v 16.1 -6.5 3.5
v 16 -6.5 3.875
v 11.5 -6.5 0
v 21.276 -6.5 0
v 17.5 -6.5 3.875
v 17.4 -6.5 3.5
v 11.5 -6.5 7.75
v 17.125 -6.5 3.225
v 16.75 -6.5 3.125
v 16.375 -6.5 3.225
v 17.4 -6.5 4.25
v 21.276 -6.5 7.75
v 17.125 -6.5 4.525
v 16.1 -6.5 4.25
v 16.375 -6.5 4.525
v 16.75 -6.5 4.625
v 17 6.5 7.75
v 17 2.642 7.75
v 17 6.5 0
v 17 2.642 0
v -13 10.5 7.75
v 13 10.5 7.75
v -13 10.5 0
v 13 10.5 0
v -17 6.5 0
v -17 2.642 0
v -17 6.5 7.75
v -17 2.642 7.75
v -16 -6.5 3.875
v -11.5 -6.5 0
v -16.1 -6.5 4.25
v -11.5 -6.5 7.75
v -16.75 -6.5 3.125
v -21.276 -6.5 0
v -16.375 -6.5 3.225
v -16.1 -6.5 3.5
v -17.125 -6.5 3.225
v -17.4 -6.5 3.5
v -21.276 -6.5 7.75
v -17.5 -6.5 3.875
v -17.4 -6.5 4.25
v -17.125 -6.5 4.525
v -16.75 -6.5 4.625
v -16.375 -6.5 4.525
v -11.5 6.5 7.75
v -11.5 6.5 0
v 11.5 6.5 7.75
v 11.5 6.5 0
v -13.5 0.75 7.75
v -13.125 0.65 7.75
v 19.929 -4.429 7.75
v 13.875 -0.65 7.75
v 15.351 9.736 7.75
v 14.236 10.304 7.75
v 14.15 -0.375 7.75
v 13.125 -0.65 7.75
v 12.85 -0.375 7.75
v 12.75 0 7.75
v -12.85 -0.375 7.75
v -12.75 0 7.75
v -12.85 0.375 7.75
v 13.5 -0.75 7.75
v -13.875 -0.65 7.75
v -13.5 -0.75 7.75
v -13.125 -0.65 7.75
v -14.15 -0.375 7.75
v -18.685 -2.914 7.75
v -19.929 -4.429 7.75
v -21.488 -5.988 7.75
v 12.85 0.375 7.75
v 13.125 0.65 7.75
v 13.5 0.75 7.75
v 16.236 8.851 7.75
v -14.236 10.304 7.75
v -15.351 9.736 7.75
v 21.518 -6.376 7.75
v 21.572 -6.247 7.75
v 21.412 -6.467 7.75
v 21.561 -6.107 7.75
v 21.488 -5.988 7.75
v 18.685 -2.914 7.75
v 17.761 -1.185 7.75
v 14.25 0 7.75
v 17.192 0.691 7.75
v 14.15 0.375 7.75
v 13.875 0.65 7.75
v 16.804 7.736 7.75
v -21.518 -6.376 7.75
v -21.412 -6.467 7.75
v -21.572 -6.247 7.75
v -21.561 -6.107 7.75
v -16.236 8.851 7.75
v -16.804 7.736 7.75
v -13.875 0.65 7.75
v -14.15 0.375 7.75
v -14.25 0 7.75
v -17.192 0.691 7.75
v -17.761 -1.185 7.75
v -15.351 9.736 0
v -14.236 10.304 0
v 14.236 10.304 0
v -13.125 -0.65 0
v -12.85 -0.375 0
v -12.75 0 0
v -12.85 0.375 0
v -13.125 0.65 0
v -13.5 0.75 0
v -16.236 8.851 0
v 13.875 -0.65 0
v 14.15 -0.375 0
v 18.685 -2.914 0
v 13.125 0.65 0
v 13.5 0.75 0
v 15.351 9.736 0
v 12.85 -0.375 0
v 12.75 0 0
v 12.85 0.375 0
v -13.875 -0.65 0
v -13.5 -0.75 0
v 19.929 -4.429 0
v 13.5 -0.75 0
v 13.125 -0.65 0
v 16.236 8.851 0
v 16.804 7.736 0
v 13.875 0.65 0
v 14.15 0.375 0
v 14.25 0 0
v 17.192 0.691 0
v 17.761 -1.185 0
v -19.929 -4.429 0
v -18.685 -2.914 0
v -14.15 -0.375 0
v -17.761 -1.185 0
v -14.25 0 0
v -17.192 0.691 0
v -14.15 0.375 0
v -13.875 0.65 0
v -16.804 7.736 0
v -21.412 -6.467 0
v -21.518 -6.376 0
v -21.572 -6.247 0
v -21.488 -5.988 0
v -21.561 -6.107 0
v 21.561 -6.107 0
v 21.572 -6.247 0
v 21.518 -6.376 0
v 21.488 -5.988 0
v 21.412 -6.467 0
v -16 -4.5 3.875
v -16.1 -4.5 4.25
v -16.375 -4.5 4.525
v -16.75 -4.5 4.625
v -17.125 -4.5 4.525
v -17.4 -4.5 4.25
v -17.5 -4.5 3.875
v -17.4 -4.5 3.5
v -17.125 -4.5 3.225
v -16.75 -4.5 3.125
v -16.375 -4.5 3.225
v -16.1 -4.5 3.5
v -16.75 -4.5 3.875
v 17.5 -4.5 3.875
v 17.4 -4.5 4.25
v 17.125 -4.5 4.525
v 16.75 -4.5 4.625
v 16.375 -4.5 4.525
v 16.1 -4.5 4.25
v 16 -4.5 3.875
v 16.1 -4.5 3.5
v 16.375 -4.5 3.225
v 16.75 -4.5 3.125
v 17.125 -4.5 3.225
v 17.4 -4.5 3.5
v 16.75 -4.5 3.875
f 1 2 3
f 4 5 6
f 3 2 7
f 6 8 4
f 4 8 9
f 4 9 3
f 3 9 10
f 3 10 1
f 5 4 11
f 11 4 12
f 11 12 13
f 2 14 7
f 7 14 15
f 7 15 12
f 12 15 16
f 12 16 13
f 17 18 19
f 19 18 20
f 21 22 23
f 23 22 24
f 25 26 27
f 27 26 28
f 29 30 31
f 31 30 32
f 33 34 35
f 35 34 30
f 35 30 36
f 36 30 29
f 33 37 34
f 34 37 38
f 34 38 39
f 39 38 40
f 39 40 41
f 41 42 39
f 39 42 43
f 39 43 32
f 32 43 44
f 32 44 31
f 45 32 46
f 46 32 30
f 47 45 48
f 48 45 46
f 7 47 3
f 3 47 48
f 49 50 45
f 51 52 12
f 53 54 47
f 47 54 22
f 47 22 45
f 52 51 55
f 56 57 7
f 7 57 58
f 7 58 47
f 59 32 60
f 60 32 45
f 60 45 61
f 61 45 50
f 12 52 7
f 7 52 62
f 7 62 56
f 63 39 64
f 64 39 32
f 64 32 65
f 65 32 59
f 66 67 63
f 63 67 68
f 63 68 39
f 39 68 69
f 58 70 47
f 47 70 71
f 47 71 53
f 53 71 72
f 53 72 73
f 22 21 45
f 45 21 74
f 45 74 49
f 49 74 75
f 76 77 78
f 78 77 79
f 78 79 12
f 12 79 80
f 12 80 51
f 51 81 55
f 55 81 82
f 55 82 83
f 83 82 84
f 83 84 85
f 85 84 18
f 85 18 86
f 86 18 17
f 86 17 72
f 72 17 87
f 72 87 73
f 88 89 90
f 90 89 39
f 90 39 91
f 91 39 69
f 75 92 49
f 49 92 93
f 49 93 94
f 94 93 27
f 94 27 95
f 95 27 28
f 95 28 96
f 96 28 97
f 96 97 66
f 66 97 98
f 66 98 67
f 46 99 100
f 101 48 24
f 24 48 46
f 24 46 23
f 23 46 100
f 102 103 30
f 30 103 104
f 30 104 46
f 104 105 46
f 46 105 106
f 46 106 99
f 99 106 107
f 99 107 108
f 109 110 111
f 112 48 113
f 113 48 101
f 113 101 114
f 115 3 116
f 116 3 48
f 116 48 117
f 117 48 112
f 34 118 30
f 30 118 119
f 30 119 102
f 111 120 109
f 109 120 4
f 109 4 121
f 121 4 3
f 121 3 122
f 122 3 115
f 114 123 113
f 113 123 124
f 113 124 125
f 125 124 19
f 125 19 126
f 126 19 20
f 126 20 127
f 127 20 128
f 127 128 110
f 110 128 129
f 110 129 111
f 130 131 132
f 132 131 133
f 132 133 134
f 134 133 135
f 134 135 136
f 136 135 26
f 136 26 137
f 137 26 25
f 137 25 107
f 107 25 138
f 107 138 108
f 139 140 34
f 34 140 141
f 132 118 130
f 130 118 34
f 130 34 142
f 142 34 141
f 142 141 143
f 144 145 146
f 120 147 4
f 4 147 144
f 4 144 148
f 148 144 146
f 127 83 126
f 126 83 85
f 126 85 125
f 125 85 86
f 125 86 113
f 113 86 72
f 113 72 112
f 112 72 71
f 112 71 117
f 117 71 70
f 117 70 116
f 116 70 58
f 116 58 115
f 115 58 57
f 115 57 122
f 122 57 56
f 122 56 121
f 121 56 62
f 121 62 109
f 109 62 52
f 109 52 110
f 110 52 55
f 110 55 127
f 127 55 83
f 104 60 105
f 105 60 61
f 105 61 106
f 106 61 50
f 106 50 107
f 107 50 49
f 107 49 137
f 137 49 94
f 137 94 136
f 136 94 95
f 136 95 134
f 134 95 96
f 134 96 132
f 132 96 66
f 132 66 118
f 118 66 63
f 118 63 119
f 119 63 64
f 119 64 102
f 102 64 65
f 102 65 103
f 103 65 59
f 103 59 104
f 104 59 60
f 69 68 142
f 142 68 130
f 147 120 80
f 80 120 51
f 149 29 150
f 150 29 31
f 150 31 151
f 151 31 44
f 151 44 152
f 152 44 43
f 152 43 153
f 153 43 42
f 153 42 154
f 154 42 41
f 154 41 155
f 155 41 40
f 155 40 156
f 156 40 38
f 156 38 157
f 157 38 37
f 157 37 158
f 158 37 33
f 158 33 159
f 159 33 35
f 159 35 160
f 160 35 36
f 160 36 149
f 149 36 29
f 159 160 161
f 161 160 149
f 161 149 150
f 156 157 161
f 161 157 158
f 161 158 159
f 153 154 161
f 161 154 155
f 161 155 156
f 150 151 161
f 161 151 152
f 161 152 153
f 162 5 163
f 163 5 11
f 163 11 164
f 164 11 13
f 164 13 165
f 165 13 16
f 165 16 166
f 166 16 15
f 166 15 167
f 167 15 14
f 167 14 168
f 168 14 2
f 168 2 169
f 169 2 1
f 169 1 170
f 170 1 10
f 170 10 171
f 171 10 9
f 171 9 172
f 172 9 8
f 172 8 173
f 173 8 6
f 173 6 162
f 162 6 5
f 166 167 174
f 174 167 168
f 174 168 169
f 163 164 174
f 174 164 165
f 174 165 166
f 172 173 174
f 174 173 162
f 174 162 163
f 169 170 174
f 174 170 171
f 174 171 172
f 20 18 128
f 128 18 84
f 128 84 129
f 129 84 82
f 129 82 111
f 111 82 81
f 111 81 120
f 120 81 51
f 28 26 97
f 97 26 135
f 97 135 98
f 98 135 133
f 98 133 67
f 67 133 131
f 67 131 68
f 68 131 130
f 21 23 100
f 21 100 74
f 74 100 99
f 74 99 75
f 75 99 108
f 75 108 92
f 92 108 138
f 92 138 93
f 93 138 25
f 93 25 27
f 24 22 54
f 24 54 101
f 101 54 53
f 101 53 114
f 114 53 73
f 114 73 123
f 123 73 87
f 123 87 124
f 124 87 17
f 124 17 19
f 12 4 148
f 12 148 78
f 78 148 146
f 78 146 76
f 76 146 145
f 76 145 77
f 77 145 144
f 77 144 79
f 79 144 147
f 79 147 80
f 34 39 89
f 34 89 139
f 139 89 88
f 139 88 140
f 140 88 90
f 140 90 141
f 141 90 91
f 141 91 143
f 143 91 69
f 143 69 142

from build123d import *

# Parameters (mm, degrees)
BOSS_EXTRUDE1_DEPTH = 7.75
SKETCH2_R           = 0.75
CUT_EXTRUDE1_DEPTH  = 22.43157717
BOSS_EXTRUDE2_DEPTH = 7.75
SKETCH4_R           = 0.75
CUT_EXTRUDE2_DEPTH  = 2
FILLET1_R           = 10
FILLET2_R           = 4
FILLET3_R           = 0.3


with BuildPart() as part:
    # Sketch1 → Boss-Extrude1 (new body)
    with BuildSketch(Plane.XY):
        Polygon((11.5, -6.5), (17, -6.5), (17, 10.5), (-17, 10.5), (-17, -6.5), (-11.5, -6.5), (-11.5, 6.5), (11.5, 6.5), align=None)
    extrude(amount=BOSS_EXTRUDE1_DEPTH)

    # Sketch2 → Cut-Extrude1 (cut, through all)
    with BuildSketch(Plane.XY.offset(7.75)):
        with Locations((-13.5, 0)):
            Circle(SKETCH2_R)
        with Locations(Location((13.5, 0, 0), (0, 0, 180))):
            Circle(SKETCH2_R)
    extrude(amount=-CUT_EXTRUDE1_DEPTH, mode=Mode.SUBTRACT)

    # Sketch3 → Boss-Extrude2 (add)
    with BuildSketch(Plane.XY):
        Polygon((-17, -1.5), (-22, -6.5), (-17, -6.5), align=None)
        Polygon((17, -1.5), (22, -6.5), (17, -6.5), align=None)
    extrude(amount=BOSS_EXTRUDE2_DEPTH)

    # Sketch4 → Cut-Extrude2 (cut)
    with BuildSketch(Plane.XZ.offset(6.5)):
        with Locations((-16.75, 3.875)):
            Circle(SKETCH4_R)
        with Locations(Location((16.75, 3.875, 0), (0, 0, 180))):
            Circle(SKETCH4_R)
    extrude(amount=-CUT_EXTRUDE2_DEPTH, mode=Mode.SUBTRACT)

    # Fillet1
    fillet1_edges = [part.edges().sort_by_distance(p)[0] for p in [
        (-17, -1.5, 3.875),
        (17, -1.5, 3.875),
    ]]
    fillet(fillet1_edges, radius=FILLET1_R)

    # Fillet2
    fillet2_edges = [part.edges().sort_by_distance(p)[0] for p in [
        (-17, 10.5, 3.875),
        (17, 10.5, 3.875),
    ]]
    fillet(fillet2_edges, radius=FILLET2_R)

    # Fillet3
    fillet3_edges = [part.edges().sort_by_distance(p)[0] for p in [
        (-22, -6.5, 3.875),
        (22, -6.5, 3.875),
    ]]
    fillet(fillet3_edges, radius=FILLET3_R)


solid = part.part
